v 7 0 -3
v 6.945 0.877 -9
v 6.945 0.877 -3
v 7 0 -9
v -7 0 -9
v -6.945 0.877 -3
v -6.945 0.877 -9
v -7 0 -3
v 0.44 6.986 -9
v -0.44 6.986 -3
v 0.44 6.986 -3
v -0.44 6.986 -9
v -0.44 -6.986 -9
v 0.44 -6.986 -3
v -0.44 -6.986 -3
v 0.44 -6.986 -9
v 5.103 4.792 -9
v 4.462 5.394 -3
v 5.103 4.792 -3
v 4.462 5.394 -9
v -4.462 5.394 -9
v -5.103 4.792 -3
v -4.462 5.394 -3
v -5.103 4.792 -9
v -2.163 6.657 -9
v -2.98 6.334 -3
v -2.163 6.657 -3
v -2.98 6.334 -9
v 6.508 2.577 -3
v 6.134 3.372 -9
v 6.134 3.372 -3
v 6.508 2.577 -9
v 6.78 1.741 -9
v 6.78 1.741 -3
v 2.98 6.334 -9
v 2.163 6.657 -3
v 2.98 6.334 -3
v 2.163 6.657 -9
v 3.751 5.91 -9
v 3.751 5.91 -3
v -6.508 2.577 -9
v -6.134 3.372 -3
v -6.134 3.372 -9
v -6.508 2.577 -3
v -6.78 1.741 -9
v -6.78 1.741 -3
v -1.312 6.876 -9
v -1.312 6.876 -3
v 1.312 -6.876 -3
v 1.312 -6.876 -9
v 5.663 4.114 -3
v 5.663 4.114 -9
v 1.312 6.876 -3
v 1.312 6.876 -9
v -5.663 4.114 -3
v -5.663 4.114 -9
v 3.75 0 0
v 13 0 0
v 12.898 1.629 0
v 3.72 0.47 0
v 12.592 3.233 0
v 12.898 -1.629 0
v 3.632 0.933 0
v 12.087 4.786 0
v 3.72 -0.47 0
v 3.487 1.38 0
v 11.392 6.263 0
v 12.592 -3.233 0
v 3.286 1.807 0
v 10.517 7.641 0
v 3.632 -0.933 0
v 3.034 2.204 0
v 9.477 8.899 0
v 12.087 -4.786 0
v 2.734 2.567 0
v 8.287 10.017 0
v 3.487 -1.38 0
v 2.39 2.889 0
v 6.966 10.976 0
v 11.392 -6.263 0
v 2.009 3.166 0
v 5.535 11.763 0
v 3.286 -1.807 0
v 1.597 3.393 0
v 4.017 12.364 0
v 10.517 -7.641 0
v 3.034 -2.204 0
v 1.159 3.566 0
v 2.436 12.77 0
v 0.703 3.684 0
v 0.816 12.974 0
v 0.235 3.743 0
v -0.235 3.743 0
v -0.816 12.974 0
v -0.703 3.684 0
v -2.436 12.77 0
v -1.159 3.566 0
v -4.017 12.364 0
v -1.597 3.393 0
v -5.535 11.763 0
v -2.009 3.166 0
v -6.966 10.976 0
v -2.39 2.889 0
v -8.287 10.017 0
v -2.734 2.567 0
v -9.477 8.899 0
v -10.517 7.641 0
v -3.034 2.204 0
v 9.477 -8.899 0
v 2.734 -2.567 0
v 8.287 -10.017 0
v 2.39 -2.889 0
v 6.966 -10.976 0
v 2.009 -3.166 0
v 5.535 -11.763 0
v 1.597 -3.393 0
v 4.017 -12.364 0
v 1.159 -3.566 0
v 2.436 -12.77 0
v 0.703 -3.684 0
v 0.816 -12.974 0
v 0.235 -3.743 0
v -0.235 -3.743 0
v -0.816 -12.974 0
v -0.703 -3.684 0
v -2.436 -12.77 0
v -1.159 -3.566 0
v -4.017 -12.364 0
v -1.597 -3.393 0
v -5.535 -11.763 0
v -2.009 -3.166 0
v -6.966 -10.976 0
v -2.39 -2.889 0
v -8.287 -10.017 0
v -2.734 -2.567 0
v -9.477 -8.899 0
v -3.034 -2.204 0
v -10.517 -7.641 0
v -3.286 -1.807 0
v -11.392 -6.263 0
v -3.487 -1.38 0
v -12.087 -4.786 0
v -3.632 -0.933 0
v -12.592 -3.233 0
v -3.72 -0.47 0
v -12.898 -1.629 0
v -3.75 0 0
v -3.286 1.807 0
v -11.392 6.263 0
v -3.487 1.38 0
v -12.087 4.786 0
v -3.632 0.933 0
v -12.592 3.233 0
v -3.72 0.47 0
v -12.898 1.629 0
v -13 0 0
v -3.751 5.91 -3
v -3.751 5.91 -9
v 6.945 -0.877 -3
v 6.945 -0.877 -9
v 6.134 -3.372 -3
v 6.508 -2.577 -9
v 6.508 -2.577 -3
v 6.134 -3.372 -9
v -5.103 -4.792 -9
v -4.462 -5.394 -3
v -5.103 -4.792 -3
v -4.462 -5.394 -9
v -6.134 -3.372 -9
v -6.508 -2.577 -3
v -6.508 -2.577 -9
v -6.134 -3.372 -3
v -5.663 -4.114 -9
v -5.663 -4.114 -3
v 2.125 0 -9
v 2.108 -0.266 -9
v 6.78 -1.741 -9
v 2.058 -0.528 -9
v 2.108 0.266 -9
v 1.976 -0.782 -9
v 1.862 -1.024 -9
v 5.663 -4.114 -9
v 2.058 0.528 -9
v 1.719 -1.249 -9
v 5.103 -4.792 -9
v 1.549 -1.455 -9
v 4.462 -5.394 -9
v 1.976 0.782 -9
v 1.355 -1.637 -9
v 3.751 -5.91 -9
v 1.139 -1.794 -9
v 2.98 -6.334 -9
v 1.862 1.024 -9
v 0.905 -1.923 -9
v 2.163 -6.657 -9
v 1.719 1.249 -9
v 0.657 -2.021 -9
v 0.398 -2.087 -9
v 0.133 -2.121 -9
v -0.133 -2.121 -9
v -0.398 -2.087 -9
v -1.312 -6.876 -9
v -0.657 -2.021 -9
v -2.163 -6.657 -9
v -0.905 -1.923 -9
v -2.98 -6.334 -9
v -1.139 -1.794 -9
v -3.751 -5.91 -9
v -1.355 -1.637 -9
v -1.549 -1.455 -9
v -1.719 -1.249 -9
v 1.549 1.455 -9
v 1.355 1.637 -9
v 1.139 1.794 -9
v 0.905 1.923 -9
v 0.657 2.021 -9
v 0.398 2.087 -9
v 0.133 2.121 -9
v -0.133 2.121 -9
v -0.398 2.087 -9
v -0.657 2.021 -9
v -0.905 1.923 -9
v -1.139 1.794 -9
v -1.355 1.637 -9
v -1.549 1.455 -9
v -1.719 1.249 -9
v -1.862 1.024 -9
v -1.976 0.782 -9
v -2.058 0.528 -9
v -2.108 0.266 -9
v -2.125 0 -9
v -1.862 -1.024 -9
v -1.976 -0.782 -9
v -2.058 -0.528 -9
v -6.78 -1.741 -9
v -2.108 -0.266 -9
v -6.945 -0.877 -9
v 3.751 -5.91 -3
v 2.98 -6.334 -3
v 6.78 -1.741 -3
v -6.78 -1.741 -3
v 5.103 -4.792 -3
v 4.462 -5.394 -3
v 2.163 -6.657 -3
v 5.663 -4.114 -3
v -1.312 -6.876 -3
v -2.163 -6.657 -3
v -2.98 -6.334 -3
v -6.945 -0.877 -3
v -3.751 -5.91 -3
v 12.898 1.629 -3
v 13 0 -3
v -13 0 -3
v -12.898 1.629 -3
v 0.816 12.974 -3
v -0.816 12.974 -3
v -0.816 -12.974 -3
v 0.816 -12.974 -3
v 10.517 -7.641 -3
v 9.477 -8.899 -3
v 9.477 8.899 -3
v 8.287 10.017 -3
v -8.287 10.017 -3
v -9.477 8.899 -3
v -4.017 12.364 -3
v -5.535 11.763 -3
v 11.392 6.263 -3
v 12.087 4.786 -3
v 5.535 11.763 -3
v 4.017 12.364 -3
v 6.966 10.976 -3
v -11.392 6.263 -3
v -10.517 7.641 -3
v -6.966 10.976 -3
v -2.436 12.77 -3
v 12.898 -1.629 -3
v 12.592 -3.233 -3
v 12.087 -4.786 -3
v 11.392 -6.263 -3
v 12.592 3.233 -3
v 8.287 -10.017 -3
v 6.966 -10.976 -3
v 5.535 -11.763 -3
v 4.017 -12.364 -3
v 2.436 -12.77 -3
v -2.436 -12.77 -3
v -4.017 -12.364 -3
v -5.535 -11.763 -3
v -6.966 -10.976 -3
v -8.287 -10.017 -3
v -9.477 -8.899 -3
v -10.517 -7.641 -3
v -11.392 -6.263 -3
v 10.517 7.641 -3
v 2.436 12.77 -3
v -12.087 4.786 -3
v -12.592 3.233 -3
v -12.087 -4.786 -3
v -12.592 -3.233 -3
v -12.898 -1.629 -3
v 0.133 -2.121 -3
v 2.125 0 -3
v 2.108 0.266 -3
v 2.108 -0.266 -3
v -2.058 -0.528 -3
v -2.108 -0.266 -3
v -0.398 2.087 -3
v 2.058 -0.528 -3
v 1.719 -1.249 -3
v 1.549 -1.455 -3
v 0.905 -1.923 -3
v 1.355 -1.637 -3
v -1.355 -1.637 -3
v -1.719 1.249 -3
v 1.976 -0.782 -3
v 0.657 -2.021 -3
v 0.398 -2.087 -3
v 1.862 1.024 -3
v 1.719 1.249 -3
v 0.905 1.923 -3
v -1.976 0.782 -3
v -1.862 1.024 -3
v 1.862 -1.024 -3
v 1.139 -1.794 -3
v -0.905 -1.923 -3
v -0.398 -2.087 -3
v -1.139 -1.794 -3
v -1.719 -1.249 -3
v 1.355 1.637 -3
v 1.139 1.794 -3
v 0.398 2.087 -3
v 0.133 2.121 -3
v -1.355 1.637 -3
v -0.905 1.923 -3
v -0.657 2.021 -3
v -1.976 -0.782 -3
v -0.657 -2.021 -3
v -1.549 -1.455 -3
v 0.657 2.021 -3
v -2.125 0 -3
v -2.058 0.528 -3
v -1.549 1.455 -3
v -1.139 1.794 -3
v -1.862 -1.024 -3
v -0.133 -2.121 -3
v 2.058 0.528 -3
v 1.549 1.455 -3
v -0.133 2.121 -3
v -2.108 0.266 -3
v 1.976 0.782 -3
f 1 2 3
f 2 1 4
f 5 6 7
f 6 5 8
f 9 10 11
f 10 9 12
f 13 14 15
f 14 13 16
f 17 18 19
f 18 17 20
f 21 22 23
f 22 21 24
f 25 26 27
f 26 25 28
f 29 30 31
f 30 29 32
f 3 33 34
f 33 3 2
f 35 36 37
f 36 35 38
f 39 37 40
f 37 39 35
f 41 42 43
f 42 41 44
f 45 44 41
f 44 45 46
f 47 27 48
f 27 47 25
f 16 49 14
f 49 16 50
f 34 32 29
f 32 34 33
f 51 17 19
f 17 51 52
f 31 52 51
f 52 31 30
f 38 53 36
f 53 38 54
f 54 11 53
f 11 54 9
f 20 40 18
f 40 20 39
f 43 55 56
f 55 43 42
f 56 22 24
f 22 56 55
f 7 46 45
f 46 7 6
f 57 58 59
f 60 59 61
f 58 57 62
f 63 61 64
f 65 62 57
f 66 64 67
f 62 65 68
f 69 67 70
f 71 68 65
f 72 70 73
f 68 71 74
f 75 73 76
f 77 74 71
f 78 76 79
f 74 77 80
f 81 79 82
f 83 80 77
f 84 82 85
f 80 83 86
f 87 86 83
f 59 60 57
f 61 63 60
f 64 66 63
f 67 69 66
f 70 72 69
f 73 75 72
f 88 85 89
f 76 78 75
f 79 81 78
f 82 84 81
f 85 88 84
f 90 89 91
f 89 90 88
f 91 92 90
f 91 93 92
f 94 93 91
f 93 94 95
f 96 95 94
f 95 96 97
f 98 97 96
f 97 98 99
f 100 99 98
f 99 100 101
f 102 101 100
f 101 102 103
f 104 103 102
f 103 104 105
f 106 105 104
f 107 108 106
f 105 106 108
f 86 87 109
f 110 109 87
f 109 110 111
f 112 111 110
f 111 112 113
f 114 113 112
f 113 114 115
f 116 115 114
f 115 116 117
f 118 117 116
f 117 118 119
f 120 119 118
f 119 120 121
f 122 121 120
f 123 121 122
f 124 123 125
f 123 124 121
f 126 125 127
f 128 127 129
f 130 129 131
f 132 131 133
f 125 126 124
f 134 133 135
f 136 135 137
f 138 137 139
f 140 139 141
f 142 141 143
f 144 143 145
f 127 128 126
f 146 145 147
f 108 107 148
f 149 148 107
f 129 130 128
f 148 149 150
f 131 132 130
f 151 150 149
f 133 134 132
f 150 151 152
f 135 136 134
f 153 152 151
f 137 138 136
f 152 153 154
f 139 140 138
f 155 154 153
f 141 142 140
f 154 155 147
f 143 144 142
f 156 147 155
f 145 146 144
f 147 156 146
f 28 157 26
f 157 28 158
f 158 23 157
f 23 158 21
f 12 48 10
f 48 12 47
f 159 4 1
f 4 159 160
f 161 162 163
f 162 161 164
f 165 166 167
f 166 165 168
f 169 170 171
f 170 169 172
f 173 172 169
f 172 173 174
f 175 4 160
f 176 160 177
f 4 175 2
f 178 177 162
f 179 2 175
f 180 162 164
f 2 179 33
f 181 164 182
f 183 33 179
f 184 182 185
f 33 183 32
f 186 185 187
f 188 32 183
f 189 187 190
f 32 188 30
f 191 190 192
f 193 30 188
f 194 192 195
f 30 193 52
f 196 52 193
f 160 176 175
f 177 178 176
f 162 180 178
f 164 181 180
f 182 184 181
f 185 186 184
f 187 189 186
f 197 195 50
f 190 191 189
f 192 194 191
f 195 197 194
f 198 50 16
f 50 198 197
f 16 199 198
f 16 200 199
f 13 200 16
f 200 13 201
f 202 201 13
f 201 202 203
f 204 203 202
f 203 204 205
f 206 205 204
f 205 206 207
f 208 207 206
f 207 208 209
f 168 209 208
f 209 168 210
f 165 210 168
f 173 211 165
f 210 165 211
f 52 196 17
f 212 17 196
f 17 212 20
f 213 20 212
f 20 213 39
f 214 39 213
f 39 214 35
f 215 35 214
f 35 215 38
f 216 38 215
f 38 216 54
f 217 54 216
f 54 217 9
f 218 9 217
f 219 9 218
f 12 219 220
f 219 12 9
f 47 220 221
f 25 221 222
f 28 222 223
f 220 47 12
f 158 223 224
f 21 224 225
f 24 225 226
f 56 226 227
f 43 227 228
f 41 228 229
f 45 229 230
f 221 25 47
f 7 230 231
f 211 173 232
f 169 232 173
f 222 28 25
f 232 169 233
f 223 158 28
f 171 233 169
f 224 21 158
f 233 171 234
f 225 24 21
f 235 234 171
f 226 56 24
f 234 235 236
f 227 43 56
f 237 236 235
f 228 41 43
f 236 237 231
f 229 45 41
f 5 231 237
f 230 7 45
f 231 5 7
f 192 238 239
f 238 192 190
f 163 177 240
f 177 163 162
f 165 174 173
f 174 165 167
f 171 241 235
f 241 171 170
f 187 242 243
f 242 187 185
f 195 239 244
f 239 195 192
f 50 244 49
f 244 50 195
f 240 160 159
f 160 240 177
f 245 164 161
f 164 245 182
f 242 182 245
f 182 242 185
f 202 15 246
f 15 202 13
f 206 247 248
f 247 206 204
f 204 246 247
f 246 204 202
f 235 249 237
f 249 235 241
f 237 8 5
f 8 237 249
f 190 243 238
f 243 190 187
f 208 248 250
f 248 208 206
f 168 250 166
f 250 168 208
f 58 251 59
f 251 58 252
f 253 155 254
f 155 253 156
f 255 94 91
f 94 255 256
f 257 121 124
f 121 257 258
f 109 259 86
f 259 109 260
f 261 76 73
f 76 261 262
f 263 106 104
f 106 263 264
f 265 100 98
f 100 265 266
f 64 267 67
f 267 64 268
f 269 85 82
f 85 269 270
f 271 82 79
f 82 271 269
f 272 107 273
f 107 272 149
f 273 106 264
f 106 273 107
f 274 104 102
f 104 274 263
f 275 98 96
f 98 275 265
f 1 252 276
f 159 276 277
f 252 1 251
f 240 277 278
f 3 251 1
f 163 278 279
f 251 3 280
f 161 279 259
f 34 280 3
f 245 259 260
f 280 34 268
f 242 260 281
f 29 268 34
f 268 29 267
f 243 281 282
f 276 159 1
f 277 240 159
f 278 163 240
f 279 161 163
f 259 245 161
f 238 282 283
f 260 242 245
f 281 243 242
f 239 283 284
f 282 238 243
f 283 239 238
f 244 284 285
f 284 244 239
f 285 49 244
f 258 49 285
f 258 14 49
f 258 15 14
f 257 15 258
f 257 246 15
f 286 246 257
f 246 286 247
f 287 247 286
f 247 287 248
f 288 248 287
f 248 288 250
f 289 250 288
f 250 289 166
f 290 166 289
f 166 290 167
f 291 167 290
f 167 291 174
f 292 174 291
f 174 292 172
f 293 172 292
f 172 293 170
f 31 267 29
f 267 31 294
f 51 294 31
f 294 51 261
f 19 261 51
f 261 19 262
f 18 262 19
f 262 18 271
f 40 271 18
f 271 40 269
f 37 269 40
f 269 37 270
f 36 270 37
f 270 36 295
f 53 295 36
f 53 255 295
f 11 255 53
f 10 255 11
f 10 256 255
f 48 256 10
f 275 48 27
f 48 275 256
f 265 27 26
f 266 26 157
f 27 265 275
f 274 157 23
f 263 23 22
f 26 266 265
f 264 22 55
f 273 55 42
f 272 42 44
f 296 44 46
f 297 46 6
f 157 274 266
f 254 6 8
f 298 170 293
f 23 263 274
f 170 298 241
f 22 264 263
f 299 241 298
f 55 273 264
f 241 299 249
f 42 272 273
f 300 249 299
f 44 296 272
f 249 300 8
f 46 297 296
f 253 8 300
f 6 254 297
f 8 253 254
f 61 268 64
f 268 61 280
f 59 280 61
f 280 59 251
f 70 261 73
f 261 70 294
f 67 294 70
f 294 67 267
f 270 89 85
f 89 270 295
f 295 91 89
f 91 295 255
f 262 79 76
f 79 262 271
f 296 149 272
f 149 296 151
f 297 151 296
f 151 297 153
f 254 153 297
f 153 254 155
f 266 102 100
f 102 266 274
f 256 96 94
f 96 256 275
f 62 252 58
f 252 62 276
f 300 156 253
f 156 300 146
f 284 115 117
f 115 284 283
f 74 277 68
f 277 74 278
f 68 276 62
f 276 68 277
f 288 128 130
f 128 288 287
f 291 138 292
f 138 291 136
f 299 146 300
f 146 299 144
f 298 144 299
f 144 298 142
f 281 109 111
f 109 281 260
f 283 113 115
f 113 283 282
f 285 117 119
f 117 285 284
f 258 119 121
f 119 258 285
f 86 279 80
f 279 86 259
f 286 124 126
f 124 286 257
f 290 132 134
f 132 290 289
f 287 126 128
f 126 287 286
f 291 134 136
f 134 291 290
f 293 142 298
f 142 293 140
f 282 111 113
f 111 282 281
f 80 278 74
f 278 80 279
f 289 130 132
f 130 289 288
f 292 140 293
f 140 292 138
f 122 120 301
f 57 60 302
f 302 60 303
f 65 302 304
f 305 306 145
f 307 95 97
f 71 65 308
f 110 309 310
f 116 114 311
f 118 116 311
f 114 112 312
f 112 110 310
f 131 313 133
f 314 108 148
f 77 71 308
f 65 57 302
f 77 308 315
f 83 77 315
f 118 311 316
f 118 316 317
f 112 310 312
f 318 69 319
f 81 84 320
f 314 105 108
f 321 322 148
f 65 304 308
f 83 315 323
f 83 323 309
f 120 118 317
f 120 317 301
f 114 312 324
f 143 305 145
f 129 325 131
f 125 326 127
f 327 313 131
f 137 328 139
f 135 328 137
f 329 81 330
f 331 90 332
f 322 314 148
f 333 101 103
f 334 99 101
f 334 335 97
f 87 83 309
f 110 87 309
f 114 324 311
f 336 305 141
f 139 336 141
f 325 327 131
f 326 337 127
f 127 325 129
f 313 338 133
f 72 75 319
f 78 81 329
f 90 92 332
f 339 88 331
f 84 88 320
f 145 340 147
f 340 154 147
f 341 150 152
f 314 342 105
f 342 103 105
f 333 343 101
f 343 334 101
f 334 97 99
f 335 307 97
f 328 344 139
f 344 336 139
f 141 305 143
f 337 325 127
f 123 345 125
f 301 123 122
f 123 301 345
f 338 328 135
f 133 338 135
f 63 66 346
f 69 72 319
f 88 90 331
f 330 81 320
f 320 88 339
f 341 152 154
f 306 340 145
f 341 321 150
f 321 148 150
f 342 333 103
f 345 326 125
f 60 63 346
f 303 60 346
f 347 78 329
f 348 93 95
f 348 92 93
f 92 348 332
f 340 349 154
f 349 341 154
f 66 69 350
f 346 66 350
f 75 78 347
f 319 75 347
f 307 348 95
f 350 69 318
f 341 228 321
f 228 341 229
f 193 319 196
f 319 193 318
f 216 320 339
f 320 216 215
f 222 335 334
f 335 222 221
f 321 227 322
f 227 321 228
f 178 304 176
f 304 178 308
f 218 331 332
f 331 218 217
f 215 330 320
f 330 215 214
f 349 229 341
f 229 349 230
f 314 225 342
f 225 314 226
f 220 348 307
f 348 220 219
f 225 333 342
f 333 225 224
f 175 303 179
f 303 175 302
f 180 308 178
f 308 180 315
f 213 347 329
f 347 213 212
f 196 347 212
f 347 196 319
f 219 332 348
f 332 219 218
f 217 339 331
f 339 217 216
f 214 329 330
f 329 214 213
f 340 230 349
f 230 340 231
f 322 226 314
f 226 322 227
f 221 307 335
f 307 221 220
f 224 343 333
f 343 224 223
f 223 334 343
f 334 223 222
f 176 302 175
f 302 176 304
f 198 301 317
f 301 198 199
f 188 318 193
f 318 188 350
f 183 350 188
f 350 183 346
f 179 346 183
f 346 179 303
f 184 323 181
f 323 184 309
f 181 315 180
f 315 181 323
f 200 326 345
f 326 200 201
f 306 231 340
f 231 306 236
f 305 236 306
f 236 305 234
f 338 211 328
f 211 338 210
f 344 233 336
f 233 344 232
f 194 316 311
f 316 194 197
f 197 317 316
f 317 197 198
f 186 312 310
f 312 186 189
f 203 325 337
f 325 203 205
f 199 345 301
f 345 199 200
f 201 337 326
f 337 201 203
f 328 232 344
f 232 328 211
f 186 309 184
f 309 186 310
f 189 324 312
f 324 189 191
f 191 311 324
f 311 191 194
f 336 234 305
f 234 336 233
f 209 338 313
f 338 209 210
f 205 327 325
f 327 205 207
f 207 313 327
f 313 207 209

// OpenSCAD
$fn = 50;


difference() {
	union() {
		translate(v = [0, 0, -9.0000000000]) {
			cylinder(h = 9, r = 7.0000000000);
		}
		translate(v = [0, 0, -3.0000000000]) {
			cylinder(h = 3, r = 13.0000000000);
		}
	}
	union() {
		translate(v = [0, 0, 0]) {
			rotate(a = [0, 0, 0]) {
				difference() {
					union() {
						#translate(v = [0, 0, -9.0000000000]) {
							cylinder(h = 9, r = 2.0000000000);
						}
						#translate(v = [0, 0, -3]) {
							cylinder(h = 3, r1 = 2.1250000000, r2 = 3.7500000000);
						}
						#translate(v = [0, 0, -9.0000000000]) {
							cylinder(h = 9, r = 2.1250000000);
						}
						#translate(v = [0, 0, -9.0000000000]) {
							cylinder(h = 9, r = 2.0000000000);
						}
					}
					union();
				}
			}
		}
	}
}
